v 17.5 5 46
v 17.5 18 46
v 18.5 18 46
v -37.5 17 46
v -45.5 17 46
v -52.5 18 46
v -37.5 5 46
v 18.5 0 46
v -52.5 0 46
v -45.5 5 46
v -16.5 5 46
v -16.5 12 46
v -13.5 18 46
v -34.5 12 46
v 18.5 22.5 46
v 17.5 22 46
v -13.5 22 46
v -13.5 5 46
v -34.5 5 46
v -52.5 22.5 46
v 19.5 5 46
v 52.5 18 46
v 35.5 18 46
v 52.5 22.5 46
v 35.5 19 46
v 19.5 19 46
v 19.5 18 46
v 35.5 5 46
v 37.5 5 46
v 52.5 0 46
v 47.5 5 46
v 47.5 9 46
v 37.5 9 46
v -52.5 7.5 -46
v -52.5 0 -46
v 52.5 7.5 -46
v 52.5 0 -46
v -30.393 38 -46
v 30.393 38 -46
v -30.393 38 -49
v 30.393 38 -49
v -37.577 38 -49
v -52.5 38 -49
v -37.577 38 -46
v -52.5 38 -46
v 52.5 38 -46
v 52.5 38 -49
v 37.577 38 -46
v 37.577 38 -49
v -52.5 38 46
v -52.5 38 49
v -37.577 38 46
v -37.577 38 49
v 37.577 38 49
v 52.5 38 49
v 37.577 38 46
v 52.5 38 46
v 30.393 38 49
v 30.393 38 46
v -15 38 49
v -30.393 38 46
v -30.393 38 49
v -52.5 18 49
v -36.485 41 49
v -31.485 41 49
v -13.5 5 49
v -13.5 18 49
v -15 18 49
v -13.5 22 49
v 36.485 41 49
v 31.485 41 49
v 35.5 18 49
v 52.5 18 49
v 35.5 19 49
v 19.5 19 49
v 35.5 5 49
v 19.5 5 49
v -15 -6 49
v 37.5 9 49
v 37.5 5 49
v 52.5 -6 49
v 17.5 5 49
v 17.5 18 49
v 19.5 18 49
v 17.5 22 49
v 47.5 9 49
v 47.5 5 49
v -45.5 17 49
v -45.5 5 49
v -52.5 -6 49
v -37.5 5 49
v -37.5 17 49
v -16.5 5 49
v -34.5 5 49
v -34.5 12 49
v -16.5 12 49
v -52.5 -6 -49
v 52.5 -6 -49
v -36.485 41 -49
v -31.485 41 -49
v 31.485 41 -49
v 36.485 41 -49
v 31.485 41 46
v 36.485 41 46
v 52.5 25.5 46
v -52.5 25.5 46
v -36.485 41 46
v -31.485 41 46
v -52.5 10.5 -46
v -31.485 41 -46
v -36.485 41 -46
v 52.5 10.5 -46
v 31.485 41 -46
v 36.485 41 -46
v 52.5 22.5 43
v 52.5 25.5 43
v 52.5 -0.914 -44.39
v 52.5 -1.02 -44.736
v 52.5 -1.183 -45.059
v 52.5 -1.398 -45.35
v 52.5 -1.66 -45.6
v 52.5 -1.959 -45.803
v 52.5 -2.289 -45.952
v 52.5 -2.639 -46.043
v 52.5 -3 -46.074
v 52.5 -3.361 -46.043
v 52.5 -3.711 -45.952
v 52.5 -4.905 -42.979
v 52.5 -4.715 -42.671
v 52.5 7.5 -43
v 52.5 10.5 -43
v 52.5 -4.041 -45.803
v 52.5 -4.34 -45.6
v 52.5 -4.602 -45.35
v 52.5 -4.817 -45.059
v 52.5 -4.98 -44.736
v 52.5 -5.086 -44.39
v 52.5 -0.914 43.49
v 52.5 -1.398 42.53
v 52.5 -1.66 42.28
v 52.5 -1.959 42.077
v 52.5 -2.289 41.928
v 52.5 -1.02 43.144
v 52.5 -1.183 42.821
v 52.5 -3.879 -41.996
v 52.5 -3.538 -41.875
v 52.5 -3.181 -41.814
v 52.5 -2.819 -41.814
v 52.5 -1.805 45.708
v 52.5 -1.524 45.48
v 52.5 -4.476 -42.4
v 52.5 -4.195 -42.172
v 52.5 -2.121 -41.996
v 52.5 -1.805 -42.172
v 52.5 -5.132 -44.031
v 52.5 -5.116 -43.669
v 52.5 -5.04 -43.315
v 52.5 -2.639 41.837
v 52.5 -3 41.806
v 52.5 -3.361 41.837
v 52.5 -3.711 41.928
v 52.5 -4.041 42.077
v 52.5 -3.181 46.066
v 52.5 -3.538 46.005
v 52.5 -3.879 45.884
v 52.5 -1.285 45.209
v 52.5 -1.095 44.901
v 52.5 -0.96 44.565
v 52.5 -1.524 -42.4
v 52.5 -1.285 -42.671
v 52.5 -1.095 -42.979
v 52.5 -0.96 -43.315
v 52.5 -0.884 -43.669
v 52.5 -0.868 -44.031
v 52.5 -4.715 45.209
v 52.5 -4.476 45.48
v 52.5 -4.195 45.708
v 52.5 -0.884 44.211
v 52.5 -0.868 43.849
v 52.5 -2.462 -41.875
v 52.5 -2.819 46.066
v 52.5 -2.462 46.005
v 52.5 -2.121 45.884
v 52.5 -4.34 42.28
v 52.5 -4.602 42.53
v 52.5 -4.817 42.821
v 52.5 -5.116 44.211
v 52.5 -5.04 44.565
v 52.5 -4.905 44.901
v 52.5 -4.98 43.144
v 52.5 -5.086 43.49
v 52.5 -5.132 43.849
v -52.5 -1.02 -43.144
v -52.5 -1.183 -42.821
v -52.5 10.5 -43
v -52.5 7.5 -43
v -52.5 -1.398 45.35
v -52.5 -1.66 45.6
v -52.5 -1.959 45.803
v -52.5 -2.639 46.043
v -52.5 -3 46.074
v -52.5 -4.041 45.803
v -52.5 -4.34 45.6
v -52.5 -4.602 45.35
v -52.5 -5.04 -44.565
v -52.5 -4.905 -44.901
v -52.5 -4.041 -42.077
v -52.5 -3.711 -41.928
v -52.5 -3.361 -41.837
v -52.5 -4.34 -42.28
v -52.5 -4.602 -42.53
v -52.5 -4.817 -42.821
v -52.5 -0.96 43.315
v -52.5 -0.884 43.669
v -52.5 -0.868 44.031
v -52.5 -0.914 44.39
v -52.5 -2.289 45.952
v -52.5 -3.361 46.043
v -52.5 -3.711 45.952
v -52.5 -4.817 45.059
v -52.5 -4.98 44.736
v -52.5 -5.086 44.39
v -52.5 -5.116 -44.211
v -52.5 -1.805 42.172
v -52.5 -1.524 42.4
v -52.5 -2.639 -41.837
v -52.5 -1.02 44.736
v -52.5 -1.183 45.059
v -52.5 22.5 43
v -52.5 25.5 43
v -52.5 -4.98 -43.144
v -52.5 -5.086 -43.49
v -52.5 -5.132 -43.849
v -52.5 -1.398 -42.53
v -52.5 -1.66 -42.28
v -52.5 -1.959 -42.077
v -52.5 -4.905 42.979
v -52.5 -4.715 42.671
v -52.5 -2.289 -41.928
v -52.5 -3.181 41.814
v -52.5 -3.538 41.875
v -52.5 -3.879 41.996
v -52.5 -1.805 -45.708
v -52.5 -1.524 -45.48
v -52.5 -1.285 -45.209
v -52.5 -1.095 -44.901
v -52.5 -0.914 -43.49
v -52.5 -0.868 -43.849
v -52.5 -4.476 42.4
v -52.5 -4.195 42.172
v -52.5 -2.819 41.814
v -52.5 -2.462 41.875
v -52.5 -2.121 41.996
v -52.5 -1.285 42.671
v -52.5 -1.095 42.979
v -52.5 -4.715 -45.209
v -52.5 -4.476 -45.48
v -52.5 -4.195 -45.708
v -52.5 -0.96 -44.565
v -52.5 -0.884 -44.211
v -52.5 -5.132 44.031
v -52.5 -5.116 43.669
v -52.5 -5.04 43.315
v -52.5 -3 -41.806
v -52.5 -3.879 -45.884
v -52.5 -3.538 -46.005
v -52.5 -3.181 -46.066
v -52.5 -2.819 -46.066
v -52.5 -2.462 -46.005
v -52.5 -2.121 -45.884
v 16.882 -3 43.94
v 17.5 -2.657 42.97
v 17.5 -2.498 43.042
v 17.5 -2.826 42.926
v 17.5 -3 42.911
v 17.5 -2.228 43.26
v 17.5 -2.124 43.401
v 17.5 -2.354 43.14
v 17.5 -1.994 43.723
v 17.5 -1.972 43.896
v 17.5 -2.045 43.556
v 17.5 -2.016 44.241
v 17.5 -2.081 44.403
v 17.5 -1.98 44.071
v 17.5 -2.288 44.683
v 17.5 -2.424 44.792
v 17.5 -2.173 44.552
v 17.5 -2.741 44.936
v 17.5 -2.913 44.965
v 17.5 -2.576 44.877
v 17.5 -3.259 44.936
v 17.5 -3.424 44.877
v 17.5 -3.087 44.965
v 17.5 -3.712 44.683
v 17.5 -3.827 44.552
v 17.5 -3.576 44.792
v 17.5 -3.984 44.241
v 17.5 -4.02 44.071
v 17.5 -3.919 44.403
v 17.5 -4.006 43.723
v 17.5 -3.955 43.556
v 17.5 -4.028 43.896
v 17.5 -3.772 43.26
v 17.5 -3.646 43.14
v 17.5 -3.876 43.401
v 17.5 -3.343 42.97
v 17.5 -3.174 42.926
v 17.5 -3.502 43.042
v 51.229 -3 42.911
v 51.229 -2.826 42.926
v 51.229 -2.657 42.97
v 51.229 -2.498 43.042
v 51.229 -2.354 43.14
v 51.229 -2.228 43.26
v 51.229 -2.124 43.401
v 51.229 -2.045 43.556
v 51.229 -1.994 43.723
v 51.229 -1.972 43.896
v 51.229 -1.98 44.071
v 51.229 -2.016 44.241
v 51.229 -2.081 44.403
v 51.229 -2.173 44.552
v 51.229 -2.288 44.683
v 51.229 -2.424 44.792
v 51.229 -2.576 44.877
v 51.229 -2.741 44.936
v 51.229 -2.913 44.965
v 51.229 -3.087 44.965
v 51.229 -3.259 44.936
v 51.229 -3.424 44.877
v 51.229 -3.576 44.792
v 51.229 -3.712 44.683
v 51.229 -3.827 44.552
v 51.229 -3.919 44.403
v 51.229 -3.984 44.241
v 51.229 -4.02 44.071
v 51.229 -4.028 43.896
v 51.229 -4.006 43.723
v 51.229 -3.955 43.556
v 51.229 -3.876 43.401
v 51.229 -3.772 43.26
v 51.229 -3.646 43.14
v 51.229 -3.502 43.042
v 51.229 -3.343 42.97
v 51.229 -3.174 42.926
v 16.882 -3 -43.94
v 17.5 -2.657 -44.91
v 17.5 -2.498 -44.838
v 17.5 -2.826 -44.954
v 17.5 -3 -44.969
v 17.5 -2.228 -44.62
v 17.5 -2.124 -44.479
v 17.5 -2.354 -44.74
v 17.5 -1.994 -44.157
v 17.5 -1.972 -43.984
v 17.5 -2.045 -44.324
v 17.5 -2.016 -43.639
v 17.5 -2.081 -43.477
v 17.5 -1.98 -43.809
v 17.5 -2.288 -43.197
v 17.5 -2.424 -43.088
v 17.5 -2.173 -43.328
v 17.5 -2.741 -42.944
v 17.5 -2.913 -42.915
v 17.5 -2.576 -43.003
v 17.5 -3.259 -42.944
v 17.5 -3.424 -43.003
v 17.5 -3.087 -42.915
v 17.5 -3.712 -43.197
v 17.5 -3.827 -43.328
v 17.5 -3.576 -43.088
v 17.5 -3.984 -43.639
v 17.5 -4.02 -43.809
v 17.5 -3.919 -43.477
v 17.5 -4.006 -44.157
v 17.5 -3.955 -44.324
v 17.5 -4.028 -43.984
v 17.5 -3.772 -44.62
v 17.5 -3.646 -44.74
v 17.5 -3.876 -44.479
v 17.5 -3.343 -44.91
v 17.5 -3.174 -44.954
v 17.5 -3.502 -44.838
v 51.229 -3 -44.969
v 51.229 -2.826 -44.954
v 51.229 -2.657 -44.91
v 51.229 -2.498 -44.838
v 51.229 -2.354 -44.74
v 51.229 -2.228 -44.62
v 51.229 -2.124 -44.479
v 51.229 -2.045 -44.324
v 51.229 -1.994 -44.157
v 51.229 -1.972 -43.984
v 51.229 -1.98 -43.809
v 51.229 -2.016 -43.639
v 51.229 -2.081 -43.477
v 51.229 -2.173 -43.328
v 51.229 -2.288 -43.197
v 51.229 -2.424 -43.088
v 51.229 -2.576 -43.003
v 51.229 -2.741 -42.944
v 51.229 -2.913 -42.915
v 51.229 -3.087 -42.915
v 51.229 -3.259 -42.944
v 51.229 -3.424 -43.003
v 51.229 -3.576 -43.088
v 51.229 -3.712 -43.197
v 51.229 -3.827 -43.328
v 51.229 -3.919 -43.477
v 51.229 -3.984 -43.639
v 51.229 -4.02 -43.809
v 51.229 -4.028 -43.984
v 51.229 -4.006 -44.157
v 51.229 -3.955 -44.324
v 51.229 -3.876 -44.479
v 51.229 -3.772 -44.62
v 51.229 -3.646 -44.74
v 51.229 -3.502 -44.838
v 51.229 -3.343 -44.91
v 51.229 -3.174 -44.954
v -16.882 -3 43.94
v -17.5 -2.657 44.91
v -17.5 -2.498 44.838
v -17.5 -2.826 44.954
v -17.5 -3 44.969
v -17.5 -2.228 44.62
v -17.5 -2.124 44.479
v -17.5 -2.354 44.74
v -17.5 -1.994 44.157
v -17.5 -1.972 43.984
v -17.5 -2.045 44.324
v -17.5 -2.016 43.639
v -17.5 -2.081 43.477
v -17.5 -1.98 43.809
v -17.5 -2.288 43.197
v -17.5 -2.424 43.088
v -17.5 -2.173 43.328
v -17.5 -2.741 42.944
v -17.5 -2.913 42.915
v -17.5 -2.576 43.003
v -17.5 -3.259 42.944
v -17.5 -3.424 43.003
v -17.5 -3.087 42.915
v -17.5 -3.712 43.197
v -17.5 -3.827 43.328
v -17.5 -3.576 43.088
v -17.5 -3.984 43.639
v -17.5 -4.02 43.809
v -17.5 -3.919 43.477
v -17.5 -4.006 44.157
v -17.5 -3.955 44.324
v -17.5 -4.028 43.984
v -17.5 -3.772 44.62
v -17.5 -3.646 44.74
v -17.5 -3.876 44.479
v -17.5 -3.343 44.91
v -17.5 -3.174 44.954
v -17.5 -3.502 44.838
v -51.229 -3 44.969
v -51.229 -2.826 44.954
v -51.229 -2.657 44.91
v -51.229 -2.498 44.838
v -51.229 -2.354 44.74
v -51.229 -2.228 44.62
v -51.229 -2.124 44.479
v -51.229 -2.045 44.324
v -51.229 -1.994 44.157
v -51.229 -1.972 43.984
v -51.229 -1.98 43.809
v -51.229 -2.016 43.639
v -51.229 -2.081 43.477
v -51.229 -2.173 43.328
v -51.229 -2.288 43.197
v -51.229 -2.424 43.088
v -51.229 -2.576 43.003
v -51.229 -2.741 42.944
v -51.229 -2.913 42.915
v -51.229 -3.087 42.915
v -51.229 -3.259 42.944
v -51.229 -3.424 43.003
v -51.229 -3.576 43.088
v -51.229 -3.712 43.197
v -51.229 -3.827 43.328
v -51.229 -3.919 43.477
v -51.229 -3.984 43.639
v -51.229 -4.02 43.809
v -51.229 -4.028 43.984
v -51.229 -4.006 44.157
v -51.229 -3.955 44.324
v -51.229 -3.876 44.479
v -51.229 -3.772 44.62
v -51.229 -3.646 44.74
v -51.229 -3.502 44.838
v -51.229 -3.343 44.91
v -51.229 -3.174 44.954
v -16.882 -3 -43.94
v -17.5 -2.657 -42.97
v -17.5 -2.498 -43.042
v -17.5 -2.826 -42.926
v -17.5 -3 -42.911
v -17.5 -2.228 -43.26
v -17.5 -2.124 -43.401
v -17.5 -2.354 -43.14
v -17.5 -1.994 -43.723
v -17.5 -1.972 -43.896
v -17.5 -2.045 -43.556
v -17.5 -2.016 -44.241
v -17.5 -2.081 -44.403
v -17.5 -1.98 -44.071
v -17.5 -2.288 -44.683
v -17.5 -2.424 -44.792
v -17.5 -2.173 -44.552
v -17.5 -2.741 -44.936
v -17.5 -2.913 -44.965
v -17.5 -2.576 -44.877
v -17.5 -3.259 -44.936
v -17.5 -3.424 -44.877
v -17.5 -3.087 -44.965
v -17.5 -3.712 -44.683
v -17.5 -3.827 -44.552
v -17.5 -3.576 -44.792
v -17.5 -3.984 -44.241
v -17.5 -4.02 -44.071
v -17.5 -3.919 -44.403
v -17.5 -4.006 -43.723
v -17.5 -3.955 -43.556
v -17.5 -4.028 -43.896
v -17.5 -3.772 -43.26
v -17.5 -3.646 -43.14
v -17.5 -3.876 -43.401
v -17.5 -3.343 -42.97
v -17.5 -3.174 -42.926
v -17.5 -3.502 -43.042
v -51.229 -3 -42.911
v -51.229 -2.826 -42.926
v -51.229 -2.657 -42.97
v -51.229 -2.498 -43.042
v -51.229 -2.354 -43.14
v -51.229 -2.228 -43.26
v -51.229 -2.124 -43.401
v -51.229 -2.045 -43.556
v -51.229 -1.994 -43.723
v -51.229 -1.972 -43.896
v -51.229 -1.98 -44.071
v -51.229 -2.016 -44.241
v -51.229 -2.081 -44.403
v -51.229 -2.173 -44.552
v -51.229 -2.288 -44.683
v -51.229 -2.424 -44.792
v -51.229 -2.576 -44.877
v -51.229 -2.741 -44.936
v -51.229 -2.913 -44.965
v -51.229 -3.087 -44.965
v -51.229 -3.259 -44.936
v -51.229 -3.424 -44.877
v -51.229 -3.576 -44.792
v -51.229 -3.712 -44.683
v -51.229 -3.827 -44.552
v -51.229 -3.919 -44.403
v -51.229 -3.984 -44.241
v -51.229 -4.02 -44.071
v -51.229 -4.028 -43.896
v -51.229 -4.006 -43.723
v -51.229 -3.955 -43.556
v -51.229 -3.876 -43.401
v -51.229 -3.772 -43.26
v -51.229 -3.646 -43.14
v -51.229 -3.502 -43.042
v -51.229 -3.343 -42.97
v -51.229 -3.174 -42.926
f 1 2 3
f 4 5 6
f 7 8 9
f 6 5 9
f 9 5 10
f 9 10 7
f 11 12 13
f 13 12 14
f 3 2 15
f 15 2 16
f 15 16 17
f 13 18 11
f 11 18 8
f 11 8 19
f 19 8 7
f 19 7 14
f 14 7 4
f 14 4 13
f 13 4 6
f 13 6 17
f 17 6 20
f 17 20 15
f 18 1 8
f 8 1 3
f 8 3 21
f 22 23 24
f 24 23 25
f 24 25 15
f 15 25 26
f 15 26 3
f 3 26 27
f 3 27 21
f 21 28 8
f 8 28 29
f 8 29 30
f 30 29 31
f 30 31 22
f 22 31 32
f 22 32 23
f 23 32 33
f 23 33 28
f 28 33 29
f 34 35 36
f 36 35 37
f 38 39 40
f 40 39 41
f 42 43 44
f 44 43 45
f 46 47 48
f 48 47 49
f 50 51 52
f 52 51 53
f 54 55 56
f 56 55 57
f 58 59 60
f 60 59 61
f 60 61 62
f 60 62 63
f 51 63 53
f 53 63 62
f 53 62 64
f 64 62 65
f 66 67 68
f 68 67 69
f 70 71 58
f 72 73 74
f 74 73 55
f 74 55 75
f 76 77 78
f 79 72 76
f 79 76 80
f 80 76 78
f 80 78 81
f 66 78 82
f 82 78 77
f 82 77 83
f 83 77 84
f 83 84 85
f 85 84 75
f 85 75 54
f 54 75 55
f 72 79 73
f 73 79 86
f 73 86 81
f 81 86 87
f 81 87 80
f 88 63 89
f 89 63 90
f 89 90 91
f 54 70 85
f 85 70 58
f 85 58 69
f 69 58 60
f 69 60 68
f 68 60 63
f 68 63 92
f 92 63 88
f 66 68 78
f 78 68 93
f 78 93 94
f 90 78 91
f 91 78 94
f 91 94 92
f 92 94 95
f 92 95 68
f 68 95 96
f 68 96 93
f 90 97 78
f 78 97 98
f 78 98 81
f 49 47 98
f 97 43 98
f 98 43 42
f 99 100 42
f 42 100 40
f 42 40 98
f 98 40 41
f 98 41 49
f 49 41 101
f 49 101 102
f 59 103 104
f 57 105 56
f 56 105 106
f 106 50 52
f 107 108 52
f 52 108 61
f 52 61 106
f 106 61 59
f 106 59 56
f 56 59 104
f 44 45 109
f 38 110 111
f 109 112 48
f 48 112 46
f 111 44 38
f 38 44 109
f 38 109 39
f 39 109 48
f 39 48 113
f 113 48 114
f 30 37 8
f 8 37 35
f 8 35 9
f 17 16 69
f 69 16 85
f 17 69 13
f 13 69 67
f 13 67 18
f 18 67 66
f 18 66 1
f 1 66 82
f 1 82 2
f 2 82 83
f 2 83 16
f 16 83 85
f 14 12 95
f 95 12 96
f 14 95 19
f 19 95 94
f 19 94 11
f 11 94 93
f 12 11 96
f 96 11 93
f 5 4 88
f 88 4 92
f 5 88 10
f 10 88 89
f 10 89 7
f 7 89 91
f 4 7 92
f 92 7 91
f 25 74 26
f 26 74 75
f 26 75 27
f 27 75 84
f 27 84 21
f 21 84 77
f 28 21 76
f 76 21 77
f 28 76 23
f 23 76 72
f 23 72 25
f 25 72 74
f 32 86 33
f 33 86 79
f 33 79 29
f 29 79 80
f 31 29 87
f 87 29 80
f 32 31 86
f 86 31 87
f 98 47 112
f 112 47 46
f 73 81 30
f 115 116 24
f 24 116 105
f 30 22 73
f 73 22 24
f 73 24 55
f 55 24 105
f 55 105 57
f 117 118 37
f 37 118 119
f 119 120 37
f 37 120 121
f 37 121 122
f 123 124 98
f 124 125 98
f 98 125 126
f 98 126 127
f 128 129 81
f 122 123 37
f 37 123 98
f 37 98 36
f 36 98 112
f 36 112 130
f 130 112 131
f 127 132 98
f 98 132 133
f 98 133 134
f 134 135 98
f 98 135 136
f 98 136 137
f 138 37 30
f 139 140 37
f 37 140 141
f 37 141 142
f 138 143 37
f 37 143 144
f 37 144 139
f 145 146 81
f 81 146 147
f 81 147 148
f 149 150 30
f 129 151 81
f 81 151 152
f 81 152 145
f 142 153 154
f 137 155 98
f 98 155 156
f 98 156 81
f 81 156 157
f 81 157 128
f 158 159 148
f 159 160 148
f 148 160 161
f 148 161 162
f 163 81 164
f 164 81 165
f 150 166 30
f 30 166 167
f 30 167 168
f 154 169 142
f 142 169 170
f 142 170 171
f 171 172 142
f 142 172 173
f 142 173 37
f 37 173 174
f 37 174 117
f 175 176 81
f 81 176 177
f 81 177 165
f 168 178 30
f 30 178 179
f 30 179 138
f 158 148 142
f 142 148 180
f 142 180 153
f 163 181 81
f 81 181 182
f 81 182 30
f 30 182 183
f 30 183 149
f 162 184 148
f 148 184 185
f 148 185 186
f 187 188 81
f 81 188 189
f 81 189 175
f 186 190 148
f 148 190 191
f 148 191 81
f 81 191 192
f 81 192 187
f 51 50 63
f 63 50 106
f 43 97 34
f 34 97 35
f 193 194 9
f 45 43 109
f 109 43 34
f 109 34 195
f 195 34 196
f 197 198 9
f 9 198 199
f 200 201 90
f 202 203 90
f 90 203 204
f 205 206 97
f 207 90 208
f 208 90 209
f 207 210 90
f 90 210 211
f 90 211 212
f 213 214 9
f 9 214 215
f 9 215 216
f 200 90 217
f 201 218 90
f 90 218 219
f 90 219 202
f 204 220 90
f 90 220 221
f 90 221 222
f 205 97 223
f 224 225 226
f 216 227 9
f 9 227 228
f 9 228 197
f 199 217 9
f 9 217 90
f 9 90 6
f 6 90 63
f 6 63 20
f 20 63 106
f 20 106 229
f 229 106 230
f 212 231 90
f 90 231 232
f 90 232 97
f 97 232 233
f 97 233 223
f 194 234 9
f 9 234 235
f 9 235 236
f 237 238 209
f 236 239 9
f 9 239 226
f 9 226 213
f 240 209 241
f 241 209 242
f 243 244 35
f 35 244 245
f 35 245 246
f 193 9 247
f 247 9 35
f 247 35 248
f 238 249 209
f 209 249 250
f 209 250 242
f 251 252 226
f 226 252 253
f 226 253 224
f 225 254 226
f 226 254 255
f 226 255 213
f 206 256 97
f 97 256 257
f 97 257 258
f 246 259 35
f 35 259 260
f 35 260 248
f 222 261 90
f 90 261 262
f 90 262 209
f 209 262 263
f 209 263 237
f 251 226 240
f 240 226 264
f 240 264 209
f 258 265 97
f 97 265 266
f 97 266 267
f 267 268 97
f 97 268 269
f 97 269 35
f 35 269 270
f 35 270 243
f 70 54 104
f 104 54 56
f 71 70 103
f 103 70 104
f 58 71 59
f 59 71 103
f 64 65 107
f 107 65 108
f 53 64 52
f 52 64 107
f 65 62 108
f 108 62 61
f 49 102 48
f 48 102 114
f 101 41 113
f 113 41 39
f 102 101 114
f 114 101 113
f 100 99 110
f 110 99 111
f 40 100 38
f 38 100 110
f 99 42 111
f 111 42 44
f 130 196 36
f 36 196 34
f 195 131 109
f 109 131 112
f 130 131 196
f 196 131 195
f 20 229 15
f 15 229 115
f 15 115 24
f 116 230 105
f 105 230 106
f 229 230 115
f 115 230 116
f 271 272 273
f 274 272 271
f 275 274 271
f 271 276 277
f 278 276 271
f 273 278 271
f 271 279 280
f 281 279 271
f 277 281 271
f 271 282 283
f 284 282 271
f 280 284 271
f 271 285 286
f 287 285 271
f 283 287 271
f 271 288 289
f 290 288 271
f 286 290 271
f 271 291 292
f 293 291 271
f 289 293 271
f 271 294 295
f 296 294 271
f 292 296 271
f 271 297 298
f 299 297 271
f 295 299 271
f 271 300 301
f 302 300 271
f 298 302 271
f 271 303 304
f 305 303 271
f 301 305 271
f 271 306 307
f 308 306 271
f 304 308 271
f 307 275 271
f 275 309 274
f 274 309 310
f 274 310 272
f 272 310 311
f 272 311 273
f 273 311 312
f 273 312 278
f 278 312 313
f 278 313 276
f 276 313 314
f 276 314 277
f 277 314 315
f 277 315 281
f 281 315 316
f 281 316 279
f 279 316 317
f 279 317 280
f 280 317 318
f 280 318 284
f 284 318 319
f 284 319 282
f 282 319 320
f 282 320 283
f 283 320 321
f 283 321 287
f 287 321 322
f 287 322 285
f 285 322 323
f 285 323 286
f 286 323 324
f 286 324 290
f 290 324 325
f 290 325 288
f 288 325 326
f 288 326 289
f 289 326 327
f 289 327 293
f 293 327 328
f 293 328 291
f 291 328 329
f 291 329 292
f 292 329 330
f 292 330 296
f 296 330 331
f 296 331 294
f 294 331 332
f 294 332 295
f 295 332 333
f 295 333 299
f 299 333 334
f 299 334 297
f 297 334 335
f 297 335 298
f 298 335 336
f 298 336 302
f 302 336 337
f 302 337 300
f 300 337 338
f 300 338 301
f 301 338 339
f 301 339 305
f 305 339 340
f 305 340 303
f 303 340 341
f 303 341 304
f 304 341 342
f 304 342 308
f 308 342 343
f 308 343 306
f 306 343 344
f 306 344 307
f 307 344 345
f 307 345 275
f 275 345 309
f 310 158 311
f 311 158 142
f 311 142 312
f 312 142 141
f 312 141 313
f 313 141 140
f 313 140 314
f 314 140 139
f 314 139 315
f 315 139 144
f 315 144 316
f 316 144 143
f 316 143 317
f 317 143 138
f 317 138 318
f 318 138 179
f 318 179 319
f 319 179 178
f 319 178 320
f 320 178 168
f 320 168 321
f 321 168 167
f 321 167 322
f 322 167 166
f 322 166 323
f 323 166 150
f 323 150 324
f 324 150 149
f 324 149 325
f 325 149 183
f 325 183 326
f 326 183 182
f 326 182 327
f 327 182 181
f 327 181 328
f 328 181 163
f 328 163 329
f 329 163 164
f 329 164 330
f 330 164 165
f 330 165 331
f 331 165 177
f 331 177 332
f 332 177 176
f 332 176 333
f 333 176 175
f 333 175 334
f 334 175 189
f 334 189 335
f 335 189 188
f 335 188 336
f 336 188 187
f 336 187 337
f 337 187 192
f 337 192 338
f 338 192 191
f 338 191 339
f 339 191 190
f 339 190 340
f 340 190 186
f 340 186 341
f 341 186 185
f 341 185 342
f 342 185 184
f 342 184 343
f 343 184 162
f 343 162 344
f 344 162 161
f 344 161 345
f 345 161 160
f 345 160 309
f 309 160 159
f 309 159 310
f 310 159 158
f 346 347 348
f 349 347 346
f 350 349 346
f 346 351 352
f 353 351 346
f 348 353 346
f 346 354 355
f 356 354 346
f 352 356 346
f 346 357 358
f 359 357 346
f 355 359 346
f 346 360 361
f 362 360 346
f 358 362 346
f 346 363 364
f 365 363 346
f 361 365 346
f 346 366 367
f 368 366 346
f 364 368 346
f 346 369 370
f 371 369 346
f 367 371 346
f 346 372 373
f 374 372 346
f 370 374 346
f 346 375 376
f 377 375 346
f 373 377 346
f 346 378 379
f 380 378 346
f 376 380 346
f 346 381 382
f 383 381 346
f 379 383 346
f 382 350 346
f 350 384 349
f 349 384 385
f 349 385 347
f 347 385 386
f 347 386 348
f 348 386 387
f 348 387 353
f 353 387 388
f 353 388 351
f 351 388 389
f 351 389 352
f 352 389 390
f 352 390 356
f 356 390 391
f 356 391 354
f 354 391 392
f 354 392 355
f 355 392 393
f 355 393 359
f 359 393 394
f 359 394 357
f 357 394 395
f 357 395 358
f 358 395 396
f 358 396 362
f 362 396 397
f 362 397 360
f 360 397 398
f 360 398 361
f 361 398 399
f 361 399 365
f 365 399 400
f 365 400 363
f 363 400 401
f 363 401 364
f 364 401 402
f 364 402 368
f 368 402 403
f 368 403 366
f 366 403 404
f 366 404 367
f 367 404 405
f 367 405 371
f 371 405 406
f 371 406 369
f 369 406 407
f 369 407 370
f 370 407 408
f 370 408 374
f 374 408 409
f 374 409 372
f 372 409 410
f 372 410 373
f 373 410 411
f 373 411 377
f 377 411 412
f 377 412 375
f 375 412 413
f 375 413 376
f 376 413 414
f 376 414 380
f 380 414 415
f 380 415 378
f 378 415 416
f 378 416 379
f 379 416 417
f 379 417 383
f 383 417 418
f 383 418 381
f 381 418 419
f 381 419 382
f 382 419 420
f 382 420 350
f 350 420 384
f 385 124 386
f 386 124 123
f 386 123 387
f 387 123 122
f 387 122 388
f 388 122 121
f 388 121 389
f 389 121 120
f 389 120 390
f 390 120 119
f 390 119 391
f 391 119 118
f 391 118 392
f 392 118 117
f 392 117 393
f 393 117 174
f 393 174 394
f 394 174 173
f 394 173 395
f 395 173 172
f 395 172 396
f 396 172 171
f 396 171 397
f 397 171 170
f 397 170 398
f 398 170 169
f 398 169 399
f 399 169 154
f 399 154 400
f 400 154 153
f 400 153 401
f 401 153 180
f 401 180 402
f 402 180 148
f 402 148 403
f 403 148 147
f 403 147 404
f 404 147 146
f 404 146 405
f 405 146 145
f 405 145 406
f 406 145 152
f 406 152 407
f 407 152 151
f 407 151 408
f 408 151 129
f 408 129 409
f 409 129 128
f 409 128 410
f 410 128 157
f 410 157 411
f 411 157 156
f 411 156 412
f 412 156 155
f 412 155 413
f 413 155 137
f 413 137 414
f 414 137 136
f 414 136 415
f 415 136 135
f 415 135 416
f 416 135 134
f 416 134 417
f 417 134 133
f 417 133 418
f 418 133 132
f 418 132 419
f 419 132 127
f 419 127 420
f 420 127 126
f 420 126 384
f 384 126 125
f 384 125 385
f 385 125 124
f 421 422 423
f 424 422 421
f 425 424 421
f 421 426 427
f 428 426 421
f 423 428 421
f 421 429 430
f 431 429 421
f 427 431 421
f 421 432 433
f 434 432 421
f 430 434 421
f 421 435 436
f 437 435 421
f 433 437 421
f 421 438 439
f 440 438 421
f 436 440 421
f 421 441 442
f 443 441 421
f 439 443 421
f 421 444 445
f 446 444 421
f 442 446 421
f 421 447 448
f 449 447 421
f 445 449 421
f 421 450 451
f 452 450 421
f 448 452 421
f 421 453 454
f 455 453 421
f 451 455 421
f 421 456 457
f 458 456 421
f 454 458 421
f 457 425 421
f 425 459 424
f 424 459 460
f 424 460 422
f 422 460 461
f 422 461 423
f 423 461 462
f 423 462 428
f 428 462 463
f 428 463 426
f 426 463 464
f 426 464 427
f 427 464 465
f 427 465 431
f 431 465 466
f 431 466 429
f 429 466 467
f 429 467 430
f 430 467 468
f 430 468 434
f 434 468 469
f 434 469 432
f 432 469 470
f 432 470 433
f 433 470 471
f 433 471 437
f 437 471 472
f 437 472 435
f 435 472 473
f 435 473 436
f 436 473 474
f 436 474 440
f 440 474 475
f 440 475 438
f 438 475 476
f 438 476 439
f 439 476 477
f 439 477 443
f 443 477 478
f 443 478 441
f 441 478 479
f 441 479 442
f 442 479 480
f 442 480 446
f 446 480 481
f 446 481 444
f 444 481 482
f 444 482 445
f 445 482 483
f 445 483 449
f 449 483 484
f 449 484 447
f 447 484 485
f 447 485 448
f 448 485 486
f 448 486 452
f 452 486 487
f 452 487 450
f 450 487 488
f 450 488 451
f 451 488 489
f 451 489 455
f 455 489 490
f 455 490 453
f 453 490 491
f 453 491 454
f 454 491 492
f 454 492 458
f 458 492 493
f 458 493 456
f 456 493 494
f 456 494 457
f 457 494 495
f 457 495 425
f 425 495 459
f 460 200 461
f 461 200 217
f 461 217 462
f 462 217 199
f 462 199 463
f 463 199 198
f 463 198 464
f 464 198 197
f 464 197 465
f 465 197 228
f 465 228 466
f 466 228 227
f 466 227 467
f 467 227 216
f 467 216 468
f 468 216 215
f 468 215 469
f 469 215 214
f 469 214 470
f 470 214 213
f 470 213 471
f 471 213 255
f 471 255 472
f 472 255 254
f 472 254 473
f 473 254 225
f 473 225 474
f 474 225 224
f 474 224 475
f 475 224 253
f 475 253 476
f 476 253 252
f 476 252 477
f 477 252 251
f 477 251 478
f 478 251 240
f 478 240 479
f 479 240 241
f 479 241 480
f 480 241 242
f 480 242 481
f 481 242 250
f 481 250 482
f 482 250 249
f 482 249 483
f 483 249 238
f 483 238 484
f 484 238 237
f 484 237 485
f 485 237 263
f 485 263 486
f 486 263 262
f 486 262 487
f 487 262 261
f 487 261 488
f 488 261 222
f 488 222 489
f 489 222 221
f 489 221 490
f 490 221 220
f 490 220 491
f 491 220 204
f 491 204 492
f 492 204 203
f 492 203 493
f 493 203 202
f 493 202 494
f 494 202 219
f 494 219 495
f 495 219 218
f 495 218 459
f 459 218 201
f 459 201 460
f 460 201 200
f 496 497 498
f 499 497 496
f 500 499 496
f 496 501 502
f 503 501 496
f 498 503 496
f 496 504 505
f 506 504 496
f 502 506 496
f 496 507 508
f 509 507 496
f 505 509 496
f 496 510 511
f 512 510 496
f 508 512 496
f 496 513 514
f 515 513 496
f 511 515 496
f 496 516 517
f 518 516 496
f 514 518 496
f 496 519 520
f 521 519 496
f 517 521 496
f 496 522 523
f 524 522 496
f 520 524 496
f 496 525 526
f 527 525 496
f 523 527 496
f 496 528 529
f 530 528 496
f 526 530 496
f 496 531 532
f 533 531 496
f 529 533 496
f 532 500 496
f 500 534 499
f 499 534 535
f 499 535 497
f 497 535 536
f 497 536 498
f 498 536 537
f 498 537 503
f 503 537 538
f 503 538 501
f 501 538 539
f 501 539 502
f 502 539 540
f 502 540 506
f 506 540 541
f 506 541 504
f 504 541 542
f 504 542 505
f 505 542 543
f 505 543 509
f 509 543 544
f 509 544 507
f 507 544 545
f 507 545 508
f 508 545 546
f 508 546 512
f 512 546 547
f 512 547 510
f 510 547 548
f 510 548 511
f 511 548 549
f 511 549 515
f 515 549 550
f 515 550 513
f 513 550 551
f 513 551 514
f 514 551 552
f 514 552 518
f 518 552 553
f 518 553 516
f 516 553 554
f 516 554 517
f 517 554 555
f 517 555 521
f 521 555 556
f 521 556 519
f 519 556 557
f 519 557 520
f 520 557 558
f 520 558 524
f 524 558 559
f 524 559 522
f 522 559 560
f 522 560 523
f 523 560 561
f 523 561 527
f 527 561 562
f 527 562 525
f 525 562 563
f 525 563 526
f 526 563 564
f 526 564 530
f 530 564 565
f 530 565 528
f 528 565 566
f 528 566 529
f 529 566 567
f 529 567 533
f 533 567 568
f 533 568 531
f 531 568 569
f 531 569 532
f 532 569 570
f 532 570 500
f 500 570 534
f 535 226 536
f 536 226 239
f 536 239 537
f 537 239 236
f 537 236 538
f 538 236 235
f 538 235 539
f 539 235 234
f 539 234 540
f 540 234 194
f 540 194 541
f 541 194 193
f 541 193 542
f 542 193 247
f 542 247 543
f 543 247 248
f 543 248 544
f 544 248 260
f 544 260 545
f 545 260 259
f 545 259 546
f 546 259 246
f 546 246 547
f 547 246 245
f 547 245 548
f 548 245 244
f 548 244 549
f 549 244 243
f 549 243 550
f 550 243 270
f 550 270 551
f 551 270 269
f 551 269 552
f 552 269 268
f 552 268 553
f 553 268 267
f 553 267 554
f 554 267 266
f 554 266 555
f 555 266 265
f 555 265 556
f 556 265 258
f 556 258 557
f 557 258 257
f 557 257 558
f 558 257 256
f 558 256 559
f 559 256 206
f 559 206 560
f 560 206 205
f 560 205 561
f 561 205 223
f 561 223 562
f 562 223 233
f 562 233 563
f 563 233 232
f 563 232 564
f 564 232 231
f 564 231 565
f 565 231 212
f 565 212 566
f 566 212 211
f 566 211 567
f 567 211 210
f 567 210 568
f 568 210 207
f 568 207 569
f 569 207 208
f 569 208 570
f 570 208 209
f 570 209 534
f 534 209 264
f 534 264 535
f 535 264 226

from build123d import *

# Parameters (mm, degrees)
SKETCH1_W               = 104
SKETCH1_H               = 92
BOSS_EXTRUDE1_DEPTH     = 38
SHELL1_T                = 6
SKETCH15_W              = 3
SKETCH15_H              = 44
CUT_EXTRUDE4_DEPTH      = 133.680066325
SKETCH3_W               = 8
SKETCH3_H               = 12
SKETCH3_W_2             = 18
SKETCH3_H_2             = 7
SKETCH3_W_3             = 16
SKETCH3_H_3             = 14
SKETCH3_W_4             = 31
SKETCH3_H_4             = 17
SKETCH3_W_5             = 10
SKETCH3_H_5             = 4
CUT_EXTRUDE2_DEPTH      = 10
CUT_EXTRUDE5_DEPTH      = 118.613774703
CUT_EXTRUDE5_DEPTH_BACK = 118.613774703
SKETCH3_3_W             = 5.5
SKETCH3_3_H             = 44
CUT_EXTRUDE3_DEPTH      = 122.512345052
CUT_EXTRUDE3_DEPTH_BACK = 122.512345052
BOSS_EXTRUDE2_DEPTH     = 3
BOSS_EXTRUDE3_START     = -3
BOSS_EXTRUDE3_OUTLINE_W = 105
BOSS_EXTRUDE3_OUTLINE_H = 3
BOSS_EXTRUDE3_DEPTH     = 3
BOSS_EXTRUDE4_START     = -3
BOSS_EXTRUDE4_OUTLINE_W = 105
BOSS_EXTRUDE4_OUTLINE_H = 3
BOSS_EXTRUDE4_DEPTH     = 3


# Read off the part's stored shape, not the designer's step: Boss-Extrude3, Boss-Extrude4
with BuildPart() as part:
    # Sketch1 → Boss-Extrude1 (new body)
    with BuildSketch(Plane(origin=(0, 0, 0), x_dir=(1, 0, 0), z_dir=(0, 1, 0))):
        Rectangle(SKETCH1_W, SKETCH1_H)
    extrude(amount=BOSS_EXTRUDE1_DEPTH)

    # Shell1
    shell1_openings = [part.faces().sort_by_distance(p)[0] for p in [
        (0, 38, 0),
    ]]
    offset(amount=SHELL1_T, openings=shell1_openings, kind=Kind.INTERSECTION)

    # Sketch15 → Cut-Extrude4 (cut, through all)
    with BuildSketch(Plane(origin=(58, 0, 0), x_dir=(0, 0, -1), z_dir=(1, 0, 0))):
        with Locations((-50.5, 16)):
            Rectangle(SKETCH15_W, SKETCH15_H)
        with Locations((50.5, 16)):
            Rectangle(SKETCH15_W, SKETCH15_H)
    extrude(amount=-CUT_EXTRUDE4_DEPTH, mode=Mode.SUBTRACT)

    # Sketch3 → Cut-Extrude2 (cut)
    with BuildSketch(Plane(origin=(0, 0, 46), x_dir=(-1, 0, 0), z_dir=(0, 0, -1))):
        with Locations((41.5, 11)):
            Rectangle(SKETCH3_W, SKETCH3_H)
        with Locations((25.5, 8.5)):
            Rectangle(SKETCH3_W_2, SKETCH3_H_2)
        with Locations((-27.5, 12)):
            Rectangle(SKETCH3_W_3, SKETCH3_H_3)
        with Locations((-2, 13.5)):
            Rectangle(SKETCH3_W_4, SKETCH3_H_4)
        with Locations((-42.5, 7)):
            Rectangle(SKETCH3_W_5, SKETCH3_H_5)
    extrude(amount=-CUT_EXTRUDE2_DEPTH, mode=Mode.SUBTRACT)

    # Sketch3<3> → Cut-Extrude5 (cut, two sides: drawn at the far end of the back side and taken through both)
    with BuildSketch(Plane(origin=(0, 0, 46), x_dir=(-1, 0, 0), z_dir=(0, 0, -1)).offset(-CUT_EXTRUDE5_DEPTH_BACK)):
        with Locations((55.25, 16)):
            Rectangle(SKETCH3_3_W, SKETCH3_3_H)
        with Locations((-55.25, 16)):
            Rectangle(SKETCH3_3_W, SKETCH3_3_H)
    extrude(amount=CUT_EXTRUDE5_DEPTH + CUT_EXTRUDE5_DEPTH_BACK, mode=Mode.SUBTRACT)

    # Sketch4 → Cut-Extrude3 (cut, two sides: drawn at the far end of the back side and taken through both)
    with BuildSketch(Plane(origin=(-52, 0, 0), x_dir=(0, 0, -1), z_dir=(1, 0, 0)).offset(-CUT_EXTRUDE3_DEPTH_BACK)):
        Polygon((-46, 257.389589044), (-46, 38), (-46, 0), (46, 0), (46, 38), (46, 257.389589044), (46, 696.168767132), (-46, 696.168767132), align=None)
    extrude(amount=CUT_EXTRUDE3_DEPTH + CUT_EXTRUDE3_DEPTH_BACK, mode=Mode.SUBTRACT)

    # Sketch10 → Boss-Extrude2 (add)
    with BuildSketch(Plane(origin=(0, 0, 46), x_dir=(-1, 0, 0), z_dir=(0, 0, -1))):
        Polygon((-37.576697733, 38), (-30.392876327, 38), (-31.48478703, 41), (-36.48478703, 41), align=None)
        Polygon((31.48478703, 41), (30.392876327, 38), (37.576697733, 38), (36.48478703, 41), align=None)
    boss_extrude2 = extrude(amount=-BOSS_EXTRUDE2_DEPTH)

    # Mirror3: Boss-Extrude2 across plane
    add(boss_extrude2.mirror(Plane.XY))

    # Boss-Extrude3 outline → Boss-Extrude3 (add)
    with BuildSketch(Plane(origin=(0, 0, -46), x_dir=(-1, 0, 0), z_dir=(0, 0, -1)).offset(BOSS_EXTRUDE3_START)):
        with Locations((0, 9)):
            Rectangle(BOSS_EXTRUDE3_OUTLINE_W, BOSS_EXTRUDE3_OUTLINE_H)
    extrude(amount=BOSS_EXTRUDE3_DEPTH)

    # Boss-Extrude4 outline → Boss-Extrude4 (add)
    with BuildSketch(Plane.XY.offset(46).offset(BOSS_EXTRUDE4_START)):
        with Locations((0, 24)):
            Rectangle(BOSS_EXTRUDE4_OUTLINE_W, BOSS_EXTRUDE4_OUTLINE_H)
    extrude(amount=BOSS_EXTRUDE4_DEPTH)

    # Sketch19 → CSK for #1 Flat Head Socket Cap Screw2 (revolve, cut)
    with BuildSketch(Plane(origin=(52.5, -3, 43.94), x_dir=(0, 0, -1), z_dir=(0, 1, 0))):
        Polygon((0, 0), (0, 35.618105319), (1.0287, 35), (1.0287, 1.271042053), (2.1336, 0), align=None)
    csk_for_1_flat_head_socket_cap_screw2 = revolve(axis=Axis((58.85, -3, 43.94), (-1, 0, 0)), mode=Mode.SUBTRACT)

    # Mirror4: CSK for #1 Flat Head Socket Cap Screw2 across plane
    add(csk_for_1_flat_head_socket_cap_screw2.mirror(Plane(origin=(0, 0, 0), x_dir=(0, 0, 1), z_dir=(1, 0, 0))), mode=Mode.SUBTRACT)

    # Mirror4 at the second plane: CSK for #1 Flat Head Socket Cap Screw2 across plane
    add(csk_for_1_flat_head_socket_cap_screw2.mirror(Plane.XY), mode=Mode.SUBTRACT)

    # Mirror4 at the second plane copy 1 sketc → Mirror4 at the second plane copy 1 (revolve, cut)
    with BuildSketch(Plane(origin=(-52.5, -3, -43.94), x_dir=(0, 0, 1), z_dir=(0, 1, 0))):
        Polygon((0, 0), (0, 35.618105319), (1.0287, 35), (1.0287, 1.271042053), (2.1336, 0), align=None)
    revolve(axis=Axis((-58.85, -3, -43.94), (1, 0, 0)), mode=Mode.SUBTRACT)


solid = part.part
